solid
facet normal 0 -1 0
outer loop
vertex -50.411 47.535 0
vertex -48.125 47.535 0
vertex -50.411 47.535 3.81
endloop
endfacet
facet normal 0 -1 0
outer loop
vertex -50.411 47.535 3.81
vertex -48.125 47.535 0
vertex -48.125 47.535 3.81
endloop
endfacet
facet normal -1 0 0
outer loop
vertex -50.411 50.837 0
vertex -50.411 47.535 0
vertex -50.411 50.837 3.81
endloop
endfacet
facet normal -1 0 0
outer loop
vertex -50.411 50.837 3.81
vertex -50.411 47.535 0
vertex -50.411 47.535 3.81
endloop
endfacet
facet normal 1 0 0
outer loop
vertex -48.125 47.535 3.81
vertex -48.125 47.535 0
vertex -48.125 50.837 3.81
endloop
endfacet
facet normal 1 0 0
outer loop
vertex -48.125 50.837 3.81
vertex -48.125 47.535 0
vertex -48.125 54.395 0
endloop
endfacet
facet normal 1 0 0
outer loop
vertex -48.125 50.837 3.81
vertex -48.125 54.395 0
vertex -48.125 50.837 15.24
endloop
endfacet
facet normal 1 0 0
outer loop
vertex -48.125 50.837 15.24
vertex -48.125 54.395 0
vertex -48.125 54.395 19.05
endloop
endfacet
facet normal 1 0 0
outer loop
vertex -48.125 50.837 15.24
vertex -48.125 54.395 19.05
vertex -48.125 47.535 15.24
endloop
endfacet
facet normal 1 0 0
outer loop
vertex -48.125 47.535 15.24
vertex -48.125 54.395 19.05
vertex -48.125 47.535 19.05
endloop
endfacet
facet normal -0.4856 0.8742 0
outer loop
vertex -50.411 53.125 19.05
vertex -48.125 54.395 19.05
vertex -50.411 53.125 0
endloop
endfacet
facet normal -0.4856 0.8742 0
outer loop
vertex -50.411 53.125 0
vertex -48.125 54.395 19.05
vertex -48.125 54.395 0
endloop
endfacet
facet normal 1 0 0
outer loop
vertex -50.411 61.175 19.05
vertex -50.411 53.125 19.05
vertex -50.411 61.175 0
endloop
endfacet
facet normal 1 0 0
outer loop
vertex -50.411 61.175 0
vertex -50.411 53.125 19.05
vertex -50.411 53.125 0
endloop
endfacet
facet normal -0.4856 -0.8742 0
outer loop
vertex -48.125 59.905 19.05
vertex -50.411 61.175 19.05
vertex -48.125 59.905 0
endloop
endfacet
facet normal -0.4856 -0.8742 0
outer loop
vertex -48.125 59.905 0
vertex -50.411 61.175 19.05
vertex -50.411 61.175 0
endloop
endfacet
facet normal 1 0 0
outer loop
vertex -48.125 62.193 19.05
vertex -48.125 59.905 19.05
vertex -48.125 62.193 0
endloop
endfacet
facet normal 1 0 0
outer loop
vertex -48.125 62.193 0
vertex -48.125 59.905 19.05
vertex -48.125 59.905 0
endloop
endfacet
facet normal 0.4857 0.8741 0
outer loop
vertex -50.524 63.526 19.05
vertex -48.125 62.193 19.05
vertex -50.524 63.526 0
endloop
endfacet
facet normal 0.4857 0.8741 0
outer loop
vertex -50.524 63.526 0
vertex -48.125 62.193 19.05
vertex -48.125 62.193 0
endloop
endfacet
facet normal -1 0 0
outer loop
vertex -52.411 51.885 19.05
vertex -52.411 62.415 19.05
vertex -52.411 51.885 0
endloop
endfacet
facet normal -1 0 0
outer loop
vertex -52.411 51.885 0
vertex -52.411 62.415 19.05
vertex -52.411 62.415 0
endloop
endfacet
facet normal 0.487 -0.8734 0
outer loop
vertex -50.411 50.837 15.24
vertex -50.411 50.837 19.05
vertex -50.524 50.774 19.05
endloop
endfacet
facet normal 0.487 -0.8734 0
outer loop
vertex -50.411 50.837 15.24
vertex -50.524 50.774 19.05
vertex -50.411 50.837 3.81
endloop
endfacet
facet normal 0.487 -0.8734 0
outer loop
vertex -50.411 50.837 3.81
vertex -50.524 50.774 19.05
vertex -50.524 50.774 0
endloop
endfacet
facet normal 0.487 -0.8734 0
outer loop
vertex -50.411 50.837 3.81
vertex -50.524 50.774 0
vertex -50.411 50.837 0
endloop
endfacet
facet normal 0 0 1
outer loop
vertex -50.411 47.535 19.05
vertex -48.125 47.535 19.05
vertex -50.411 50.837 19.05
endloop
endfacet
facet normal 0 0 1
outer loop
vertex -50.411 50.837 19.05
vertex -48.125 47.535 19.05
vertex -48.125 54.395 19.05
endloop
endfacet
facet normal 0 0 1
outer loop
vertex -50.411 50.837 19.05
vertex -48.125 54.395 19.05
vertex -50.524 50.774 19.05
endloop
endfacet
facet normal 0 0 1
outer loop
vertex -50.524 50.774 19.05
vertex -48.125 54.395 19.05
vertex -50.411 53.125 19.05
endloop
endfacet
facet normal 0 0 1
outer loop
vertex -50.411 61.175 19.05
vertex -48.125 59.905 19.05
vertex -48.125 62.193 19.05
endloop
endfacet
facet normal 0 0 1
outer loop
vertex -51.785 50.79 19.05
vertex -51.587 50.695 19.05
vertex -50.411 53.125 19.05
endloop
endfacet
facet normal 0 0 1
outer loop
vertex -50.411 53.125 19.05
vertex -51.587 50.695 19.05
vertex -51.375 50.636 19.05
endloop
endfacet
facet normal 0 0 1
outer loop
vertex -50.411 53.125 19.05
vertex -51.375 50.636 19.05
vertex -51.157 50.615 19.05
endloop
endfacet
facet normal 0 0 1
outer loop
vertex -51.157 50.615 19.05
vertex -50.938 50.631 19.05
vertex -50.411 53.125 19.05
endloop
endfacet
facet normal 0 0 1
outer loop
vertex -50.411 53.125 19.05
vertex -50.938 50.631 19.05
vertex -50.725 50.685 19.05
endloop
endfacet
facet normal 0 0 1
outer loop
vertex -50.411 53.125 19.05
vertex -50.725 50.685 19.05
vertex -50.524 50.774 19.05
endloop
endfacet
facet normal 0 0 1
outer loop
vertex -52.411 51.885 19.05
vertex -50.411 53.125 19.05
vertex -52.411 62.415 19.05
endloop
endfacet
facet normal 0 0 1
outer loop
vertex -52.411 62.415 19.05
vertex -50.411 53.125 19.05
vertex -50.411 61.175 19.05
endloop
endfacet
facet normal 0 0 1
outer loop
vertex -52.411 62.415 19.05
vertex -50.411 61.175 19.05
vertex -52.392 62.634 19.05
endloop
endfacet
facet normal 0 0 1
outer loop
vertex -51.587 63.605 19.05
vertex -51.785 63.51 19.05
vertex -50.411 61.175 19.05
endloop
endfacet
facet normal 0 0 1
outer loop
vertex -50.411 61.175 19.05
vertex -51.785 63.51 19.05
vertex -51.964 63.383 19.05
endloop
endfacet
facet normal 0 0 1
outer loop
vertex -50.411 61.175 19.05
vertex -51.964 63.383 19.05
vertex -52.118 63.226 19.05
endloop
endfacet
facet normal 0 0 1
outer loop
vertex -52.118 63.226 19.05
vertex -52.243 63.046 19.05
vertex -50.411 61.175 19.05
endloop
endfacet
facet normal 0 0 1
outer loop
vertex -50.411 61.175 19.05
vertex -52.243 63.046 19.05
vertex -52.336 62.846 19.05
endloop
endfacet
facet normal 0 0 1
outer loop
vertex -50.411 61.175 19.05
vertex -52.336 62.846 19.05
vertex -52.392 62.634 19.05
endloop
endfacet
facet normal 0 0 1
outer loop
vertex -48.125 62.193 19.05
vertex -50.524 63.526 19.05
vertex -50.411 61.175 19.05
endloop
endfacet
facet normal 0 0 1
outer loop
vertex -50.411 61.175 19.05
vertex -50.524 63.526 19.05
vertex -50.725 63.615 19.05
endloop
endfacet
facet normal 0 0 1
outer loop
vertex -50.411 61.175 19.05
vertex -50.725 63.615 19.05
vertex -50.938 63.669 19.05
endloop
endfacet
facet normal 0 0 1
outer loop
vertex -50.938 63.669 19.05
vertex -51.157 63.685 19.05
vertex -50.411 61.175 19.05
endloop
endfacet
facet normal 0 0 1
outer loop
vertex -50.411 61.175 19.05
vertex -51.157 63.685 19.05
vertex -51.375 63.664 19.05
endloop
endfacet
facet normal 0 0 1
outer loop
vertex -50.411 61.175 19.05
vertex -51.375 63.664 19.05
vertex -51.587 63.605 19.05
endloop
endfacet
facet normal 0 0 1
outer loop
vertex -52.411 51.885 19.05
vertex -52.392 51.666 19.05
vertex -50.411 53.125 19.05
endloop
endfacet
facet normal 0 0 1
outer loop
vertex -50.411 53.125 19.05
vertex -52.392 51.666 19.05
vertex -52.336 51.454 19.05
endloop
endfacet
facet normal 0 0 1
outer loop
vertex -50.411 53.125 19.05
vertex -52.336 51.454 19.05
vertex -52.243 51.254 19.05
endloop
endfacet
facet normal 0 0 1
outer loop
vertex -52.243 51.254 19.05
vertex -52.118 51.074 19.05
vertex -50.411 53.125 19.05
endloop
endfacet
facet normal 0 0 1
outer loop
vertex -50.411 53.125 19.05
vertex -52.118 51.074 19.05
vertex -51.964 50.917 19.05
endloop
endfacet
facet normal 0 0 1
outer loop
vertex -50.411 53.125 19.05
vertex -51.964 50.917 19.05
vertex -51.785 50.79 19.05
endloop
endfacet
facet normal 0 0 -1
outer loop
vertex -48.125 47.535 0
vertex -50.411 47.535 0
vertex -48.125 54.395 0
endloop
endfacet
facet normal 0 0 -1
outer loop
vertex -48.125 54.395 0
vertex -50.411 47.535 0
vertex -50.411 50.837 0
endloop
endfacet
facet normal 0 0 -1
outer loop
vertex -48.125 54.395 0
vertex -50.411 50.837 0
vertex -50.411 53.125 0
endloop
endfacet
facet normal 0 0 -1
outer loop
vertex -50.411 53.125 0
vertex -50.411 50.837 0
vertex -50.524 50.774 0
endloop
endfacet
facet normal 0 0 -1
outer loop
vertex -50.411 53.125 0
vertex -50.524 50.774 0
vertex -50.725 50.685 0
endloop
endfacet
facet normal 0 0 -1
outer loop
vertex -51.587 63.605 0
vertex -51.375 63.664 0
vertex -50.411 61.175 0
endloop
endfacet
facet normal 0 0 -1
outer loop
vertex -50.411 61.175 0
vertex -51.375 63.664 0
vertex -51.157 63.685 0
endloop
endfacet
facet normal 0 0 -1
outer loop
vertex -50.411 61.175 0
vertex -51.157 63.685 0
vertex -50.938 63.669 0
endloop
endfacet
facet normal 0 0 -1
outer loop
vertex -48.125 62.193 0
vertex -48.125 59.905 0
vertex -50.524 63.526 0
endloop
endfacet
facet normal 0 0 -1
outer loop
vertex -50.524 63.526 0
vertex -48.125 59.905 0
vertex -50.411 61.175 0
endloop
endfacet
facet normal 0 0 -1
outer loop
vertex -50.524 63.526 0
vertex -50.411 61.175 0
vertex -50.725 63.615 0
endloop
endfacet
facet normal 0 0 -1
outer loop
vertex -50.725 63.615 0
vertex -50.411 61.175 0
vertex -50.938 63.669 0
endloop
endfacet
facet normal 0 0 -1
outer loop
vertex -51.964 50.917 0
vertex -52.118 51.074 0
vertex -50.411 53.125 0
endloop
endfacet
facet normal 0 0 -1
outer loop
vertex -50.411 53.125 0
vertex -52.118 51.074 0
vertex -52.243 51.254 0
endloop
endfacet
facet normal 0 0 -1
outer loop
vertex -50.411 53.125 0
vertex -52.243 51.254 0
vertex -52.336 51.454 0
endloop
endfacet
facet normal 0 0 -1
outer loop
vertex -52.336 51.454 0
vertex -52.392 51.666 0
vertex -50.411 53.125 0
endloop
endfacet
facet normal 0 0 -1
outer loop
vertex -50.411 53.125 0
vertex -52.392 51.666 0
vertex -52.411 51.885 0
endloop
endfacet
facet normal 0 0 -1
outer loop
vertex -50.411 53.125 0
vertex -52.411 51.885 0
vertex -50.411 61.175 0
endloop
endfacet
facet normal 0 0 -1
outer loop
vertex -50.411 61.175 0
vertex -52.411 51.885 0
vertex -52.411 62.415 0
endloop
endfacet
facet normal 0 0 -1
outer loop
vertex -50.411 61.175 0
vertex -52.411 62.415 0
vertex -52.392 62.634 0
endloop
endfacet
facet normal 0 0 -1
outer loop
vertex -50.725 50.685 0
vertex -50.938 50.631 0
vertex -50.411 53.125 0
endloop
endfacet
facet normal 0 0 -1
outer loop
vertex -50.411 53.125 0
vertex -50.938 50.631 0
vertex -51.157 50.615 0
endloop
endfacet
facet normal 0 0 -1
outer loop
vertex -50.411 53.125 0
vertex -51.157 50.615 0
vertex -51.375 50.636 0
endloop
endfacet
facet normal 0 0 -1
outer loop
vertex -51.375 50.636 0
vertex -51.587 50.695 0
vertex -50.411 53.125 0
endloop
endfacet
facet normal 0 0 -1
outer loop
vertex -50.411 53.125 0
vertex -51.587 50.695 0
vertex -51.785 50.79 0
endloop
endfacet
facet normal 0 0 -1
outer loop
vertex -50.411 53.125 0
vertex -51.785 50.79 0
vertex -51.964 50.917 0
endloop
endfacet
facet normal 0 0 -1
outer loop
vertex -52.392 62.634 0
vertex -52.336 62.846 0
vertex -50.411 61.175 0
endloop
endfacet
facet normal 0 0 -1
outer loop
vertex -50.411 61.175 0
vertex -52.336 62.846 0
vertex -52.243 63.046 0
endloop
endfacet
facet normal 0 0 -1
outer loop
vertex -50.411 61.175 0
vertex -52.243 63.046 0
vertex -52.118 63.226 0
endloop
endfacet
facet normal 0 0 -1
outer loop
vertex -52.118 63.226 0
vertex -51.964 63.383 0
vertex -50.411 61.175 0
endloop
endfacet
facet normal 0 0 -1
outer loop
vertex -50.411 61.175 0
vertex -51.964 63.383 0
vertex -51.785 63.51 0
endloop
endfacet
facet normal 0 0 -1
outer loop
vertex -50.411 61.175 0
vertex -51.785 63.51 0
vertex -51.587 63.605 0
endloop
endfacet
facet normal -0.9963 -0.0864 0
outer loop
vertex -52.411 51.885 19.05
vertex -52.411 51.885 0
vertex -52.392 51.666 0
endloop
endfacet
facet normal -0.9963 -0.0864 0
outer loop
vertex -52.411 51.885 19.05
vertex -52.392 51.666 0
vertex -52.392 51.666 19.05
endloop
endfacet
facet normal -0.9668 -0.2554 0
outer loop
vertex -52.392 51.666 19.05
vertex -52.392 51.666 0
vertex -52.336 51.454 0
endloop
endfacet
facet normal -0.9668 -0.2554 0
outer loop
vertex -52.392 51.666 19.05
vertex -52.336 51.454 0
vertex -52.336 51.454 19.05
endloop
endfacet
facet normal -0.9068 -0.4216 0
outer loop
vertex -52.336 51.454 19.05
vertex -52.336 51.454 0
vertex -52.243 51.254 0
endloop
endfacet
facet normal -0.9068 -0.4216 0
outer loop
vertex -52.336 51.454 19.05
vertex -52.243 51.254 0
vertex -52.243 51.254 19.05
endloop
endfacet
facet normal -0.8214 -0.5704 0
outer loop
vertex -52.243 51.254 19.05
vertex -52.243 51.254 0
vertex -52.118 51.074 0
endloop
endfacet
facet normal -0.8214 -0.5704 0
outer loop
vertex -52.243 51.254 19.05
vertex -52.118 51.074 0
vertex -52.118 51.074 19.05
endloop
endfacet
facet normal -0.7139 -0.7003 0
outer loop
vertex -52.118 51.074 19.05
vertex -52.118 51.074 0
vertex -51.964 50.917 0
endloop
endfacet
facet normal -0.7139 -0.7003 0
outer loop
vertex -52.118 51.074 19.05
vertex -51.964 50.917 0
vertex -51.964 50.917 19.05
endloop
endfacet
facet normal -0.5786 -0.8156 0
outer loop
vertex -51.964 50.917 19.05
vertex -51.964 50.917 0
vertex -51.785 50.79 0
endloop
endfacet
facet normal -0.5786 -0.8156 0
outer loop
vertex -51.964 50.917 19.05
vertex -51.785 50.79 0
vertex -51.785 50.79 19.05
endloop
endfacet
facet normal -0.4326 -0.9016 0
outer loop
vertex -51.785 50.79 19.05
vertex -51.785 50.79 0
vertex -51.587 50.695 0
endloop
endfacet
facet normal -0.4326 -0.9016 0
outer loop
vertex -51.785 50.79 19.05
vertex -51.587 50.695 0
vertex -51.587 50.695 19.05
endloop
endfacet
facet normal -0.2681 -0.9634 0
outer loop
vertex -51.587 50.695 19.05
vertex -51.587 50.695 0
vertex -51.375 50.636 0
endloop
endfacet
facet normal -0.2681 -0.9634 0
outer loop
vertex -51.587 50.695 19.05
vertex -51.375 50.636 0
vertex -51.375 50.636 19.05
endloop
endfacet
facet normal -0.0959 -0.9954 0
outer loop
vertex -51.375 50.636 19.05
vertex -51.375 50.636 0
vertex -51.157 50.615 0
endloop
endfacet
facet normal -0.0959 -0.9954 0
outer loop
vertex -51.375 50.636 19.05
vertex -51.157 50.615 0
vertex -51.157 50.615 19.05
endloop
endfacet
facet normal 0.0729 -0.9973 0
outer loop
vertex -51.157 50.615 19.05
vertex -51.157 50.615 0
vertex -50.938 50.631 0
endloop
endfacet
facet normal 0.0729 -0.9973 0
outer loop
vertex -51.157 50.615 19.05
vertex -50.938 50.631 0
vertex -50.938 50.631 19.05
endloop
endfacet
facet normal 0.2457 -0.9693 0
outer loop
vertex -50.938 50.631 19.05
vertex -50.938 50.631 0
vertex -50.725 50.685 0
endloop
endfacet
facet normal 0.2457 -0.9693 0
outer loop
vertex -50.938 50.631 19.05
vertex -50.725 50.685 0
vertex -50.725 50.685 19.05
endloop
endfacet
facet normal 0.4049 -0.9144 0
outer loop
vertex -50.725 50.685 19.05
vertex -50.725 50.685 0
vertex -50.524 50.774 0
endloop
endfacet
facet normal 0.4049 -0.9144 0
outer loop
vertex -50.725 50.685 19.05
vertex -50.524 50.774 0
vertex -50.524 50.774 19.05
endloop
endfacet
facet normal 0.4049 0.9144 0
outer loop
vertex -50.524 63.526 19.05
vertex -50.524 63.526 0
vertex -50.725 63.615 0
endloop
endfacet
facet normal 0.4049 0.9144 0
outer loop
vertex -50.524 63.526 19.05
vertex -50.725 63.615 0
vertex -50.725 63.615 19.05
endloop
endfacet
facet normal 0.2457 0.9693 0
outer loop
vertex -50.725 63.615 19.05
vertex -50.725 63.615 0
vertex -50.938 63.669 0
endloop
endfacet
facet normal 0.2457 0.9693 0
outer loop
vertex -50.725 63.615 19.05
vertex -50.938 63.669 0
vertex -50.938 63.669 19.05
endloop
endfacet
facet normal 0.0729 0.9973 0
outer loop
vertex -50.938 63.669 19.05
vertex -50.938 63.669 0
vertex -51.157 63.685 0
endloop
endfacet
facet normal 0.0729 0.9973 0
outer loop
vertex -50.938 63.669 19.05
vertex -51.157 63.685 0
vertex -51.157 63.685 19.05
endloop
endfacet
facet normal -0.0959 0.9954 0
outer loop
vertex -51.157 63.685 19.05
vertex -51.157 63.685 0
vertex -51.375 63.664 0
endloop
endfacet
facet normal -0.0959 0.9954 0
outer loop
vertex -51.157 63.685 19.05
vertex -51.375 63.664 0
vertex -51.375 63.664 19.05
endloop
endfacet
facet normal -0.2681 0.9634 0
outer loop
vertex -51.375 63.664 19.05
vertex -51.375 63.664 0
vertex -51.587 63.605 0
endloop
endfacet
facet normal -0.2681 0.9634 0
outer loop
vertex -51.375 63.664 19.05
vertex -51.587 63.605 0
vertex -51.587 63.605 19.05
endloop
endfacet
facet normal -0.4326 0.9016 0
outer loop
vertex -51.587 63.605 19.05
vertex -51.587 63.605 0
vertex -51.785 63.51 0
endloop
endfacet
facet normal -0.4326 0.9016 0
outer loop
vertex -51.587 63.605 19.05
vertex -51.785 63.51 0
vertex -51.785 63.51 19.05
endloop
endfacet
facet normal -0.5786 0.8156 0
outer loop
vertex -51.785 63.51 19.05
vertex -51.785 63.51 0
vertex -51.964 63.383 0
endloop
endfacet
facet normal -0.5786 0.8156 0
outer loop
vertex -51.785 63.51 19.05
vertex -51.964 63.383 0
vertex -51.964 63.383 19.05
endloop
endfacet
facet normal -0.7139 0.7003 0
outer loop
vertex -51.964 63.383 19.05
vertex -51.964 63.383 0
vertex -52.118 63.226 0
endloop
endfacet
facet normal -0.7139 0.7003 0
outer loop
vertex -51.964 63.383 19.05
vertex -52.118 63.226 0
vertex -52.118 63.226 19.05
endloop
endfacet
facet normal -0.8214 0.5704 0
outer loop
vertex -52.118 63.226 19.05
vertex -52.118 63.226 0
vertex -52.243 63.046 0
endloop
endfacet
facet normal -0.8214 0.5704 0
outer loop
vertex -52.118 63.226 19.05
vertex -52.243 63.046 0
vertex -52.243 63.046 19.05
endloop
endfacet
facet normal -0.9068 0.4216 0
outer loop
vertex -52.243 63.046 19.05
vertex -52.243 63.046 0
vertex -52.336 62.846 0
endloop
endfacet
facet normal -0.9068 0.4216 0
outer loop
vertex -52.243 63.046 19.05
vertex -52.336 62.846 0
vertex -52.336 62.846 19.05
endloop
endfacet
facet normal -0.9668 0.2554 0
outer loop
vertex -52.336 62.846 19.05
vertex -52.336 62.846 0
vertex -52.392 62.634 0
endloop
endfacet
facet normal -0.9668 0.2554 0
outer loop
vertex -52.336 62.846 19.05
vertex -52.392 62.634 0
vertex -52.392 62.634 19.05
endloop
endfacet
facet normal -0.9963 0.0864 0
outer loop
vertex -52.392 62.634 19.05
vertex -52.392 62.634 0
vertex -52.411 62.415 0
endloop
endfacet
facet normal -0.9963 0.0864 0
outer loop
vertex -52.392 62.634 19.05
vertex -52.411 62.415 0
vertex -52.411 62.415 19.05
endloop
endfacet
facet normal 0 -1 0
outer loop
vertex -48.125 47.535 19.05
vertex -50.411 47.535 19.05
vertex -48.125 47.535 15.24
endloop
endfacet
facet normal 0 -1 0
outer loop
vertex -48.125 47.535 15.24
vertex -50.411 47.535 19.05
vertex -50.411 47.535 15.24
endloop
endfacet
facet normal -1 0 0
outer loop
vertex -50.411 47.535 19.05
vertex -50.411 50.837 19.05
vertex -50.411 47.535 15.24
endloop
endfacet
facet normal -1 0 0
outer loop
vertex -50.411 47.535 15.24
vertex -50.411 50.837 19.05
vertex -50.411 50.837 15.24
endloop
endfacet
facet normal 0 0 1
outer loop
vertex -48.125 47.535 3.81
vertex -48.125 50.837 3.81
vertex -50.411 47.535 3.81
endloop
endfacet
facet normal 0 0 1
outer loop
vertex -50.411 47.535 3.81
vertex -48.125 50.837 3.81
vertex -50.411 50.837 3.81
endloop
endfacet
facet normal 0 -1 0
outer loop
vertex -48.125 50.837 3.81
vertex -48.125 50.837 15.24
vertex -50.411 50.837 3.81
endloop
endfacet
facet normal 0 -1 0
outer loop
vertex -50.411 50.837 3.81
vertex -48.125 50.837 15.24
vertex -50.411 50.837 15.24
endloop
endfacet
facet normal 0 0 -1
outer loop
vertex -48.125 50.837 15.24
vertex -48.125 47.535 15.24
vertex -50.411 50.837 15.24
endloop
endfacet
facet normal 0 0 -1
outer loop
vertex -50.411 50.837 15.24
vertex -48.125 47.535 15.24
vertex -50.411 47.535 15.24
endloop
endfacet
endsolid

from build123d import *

# Parameters (mm, degrees)
BOSS_EXTRUDE1_DEPTH = 19.05
FILLET1_R           = 1.27
SKETCH3_W           = 2.286
SKETCH3_H           = 4.572
BOSS_EXTRUDE2_DEPTH = 19.05
SKETCH4_W           = 11.43
SKETCH4_H           = 3.302
CUT_EXTRUDE2_DEPTH  = 3.286


with BuildPart() as part:
    # Sketch2 → Boss-Extrude1 (new body)
    with BuildSketch(Plane.XY):
        Polygon((-50.411, 53.12524277), (-50.411, 61.17475723), (-48.125, 59.90475723), (-48.125, 62.192675039), (-52.411, 64.57378615), (-52.411, 49.72621385), (-48.125, 52.107324961), (-48.125, 54.39524277), align=None)
    extrude(amount=BOSS_EXTRUDE1_DEPTH)

    # Fillet1
    fillet1_edges = [part.edges().sort_by_distance(p)[0] for p in [
        (-52.411, 49.72621385, 9.525),
        (-52.411, 64.57378615, 9.525),
    ]]
    fillet(fillet1_edges, radius=FILLET1_R)

    # Sketch3 → Boss-Extrude2 (add, through all)
    with BuildSketch(Plane.XY.offset(19.05)):
        with Locations((-49.268, 49.821324961)):
            Rectangle(SKETCH3_W, SKETCH3_H)
    extrude(amount=-BOSS_EXTRUDE2_DEPTH)

    # Sketch4 → Cut-Extrude2 (cut, through all)
    with BuildSketch(Plane.ZY.offset(50.411)):
        with Locations((9.525, 49.186324961)):
            Rectangle(SKETCH4_W, SKETCH4_H)
    extrude(amount=-CUT_EXTRUDE2_DEPTH, mode=Mode.SUBTRACT)


solid = part.part
